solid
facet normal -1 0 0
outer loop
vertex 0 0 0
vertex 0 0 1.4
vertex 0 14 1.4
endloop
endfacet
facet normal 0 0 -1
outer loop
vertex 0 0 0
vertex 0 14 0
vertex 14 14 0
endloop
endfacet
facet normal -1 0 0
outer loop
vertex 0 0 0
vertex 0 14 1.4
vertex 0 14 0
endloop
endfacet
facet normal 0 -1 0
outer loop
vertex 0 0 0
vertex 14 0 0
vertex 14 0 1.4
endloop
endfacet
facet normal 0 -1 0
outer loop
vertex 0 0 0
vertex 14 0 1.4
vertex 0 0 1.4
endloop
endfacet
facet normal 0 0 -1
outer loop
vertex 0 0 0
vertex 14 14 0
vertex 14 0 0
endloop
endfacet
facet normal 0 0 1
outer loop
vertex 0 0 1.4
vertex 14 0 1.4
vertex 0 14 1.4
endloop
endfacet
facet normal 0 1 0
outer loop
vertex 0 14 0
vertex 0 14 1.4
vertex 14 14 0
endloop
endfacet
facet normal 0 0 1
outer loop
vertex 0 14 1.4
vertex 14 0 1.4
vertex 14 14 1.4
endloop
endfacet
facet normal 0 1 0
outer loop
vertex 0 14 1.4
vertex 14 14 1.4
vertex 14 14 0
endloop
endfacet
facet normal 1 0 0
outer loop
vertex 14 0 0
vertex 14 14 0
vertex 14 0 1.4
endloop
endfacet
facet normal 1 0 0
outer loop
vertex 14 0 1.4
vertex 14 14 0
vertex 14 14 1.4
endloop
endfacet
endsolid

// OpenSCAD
/* Warning, this is a very basic generator with a lot of approximation 
input data : [LQFP, HTX, 14x14x1.4mm, 100, , B, C04-00233B]
generated by com.zoubworld.electronics.cad.model3d.Basic
Date : Sun Feb 15 10:50:48 CET 2026
*/

//body
color("black")
translate([0,0,0])
cube([14.0,14.0,1.4], center=false);
